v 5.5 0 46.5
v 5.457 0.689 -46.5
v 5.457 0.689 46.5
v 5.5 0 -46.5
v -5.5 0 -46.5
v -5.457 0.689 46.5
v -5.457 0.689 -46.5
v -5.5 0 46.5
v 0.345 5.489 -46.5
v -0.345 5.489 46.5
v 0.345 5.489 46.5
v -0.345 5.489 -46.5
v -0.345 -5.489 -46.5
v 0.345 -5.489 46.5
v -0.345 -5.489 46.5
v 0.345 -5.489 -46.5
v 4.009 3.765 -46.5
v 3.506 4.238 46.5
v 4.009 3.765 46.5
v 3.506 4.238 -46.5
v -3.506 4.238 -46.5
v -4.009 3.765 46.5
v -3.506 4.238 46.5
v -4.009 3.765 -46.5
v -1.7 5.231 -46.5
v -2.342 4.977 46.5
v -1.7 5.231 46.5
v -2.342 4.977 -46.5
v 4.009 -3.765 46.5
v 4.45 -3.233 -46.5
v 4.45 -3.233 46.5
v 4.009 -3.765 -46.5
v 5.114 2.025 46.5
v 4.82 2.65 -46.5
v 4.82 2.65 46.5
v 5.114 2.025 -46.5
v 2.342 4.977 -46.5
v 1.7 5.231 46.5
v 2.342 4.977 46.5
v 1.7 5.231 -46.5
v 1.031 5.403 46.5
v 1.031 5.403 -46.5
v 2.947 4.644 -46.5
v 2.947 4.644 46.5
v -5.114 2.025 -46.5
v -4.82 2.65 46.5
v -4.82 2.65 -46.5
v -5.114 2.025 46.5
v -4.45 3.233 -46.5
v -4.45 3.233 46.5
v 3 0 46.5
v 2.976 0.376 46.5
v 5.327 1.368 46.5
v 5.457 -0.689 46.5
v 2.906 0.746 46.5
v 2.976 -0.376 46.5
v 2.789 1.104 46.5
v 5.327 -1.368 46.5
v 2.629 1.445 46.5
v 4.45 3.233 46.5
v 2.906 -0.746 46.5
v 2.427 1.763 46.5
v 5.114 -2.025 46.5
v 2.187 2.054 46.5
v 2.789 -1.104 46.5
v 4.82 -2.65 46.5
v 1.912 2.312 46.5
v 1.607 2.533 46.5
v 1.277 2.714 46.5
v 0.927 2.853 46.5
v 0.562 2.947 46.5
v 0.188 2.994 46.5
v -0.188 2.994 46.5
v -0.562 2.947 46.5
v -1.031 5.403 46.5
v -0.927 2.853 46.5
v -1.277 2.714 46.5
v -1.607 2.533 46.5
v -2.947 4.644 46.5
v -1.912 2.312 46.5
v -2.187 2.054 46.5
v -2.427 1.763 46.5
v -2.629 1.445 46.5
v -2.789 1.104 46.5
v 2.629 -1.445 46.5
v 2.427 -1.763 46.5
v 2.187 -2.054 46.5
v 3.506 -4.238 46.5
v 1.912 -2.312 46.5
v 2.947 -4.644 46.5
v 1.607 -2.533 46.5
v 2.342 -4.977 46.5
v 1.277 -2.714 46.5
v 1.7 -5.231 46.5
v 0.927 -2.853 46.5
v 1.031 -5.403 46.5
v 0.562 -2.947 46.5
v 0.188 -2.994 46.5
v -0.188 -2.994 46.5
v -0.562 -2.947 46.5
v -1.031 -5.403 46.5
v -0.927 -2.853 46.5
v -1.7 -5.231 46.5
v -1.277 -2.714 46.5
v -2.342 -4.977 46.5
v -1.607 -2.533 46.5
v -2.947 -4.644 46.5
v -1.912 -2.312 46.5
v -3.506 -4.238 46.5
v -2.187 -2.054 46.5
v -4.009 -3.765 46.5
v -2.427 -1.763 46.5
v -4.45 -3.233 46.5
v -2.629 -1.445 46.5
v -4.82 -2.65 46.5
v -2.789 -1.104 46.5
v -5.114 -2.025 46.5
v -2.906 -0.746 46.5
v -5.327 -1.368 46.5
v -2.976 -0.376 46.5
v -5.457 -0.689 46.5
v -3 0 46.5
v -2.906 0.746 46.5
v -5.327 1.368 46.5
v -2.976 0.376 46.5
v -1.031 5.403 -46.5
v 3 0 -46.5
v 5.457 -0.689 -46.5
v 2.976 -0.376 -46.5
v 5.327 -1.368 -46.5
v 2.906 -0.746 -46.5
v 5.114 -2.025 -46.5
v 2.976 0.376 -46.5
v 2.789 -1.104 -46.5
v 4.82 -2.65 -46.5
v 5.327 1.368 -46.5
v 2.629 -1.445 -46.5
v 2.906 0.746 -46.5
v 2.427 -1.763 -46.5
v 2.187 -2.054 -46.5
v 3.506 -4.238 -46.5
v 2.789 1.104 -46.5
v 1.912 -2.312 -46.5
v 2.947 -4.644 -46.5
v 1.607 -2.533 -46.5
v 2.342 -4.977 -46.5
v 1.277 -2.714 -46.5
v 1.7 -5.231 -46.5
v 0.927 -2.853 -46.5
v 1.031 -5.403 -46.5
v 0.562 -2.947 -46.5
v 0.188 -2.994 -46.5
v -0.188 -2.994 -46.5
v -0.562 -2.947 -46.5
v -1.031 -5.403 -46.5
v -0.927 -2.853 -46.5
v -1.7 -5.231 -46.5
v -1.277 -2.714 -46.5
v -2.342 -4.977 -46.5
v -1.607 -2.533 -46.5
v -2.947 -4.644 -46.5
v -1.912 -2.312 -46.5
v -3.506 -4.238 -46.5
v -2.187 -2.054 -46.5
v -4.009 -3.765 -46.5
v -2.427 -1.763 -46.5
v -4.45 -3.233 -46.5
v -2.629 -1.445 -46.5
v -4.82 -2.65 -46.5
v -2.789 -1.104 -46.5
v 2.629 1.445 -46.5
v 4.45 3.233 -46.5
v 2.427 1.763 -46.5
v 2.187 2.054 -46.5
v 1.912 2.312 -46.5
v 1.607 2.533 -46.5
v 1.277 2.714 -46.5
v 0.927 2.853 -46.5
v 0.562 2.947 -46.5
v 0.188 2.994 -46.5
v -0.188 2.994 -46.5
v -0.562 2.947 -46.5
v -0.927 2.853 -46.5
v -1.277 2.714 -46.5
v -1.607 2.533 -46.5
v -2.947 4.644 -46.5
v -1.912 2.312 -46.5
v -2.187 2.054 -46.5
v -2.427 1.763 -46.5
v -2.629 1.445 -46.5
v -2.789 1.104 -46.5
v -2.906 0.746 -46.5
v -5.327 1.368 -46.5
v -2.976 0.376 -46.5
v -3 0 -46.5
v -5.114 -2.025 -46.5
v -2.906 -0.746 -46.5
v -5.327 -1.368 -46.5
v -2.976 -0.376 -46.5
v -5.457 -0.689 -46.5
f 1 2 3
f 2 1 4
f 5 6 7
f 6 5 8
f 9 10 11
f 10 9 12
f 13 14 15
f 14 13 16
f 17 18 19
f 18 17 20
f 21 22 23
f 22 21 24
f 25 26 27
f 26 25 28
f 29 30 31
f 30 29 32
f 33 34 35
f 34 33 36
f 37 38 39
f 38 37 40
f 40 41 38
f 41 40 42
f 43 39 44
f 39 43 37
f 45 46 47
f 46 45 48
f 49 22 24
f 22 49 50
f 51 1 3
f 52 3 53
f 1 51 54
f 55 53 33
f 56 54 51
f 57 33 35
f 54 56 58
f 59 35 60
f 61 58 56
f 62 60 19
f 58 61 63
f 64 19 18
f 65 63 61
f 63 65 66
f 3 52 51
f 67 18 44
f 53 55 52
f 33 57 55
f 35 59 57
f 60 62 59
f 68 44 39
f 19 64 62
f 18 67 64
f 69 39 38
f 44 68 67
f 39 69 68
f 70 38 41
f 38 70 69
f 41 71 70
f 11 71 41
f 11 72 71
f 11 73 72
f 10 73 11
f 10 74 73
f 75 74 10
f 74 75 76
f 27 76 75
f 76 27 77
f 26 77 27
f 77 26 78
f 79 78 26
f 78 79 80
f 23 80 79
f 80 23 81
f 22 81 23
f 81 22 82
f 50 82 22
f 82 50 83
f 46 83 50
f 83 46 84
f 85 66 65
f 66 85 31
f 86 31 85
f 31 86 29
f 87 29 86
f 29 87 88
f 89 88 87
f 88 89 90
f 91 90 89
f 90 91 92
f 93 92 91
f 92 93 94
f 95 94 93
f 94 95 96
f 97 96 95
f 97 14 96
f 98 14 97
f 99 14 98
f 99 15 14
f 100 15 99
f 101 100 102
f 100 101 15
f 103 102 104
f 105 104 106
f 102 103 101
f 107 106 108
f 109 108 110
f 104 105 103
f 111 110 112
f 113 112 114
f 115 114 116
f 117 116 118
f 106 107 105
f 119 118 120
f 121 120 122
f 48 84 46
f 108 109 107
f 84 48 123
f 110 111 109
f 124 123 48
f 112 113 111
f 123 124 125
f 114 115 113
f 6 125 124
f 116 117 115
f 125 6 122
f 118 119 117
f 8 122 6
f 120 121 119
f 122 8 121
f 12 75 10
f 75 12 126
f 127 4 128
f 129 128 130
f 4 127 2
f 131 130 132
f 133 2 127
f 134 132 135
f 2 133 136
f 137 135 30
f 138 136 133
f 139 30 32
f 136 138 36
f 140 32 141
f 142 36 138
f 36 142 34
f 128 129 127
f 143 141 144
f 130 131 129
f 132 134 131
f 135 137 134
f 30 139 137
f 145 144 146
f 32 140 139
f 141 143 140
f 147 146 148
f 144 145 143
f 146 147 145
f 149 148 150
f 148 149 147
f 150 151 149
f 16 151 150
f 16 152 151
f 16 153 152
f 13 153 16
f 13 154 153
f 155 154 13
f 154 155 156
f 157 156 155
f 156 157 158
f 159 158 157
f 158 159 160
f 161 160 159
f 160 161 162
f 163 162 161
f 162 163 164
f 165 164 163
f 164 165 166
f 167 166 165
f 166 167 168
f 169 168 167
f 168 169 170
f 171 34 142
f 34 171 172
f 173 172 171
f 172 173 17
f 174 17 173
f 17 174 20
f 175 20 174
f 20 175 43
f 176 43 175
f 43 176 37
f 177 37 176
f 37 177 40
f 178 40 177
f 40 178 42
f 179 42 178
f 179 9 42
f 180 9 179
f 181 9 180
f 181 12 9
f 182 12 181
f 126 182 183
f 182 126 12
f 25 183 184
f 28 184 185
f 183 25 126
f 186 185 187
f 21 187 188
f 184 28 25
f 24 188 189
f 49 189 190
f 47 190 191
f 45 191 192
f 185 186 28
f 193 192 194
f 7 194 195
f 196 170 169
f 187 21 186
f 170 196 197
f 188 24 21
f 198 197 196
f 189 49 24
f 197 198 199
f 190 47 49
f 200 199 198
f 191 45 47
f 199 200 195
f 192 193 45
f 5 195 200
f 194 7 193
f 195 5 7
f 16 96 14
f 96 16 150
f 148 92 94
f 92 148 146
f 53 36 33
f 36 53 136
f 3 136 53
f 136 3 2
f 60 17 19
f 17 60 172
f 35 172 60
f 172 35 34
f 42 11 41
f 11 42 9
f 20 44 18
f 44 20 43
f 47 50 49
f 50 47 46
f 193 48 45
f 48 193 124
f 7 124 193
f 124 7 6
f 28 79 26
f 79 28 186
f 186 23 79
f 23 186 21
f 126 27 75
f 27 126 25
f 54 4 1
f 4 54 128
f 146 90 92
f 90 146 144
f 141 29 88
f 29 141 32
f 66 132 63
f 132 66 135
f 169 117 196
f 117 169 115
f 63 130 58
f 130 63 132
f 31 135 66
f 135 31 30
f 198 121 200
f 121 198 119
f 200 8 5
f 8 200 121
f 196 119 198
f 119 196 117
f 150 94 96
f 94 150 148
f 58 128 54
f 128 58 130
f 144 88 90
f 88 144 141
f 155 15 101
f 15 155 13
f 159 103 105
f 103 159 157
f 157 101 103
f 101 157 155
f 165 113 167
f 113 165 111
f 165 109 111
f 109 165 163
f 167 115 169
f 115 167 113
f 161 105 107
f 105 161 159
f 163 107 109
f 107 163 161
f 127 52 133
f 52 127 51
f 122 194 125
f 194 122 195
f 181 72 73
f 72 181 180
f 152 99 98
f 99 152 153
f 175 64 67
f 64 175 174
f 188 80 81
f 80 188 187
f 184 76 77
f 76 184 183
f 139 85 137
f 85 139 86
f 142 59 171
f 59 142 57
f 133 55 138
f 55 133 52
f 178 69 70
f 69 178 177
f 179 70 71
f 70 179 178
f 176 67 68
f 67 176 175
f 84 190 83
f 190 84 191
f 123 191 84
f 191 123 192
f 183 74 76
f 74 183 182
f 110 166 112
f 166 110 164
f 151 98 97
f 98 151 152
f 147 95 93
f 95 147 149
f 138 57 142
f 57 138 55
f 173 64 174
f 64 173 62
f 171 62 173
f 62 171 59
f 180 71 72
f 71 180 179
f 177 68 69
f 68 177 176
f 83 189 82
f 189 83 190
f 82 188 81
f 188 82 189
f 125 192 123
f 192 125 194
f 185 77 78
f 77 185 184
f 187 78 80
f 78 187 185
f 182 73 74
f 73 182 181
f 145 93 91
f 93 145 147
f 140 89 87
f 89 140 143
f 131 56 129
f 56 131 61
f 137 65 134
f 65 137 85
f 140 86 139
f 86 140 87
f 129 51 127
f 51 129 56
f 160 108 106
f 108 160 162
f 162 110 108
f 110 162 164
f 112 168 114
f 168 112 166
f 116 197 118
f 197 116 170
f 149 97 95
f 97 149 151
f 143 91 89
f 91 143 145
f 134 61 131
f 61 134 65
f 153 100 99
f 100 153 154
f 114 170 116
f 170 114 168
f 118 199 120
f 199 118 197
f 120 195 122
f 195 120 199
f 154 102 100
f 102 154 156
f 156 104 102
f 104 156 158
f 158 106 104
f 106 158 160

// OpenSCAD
$fn = 50;


difference() {
	union() {
		translate(v = [0, 0, -46.5000000000]) {
			cylinder(h = 93, r = 5.5000000000);
		}
	}
	union() {
		translate(v = [0, 0, -100.0000000000]) {
			cylinder(h = 200, r = 3);
		}
	}
}
